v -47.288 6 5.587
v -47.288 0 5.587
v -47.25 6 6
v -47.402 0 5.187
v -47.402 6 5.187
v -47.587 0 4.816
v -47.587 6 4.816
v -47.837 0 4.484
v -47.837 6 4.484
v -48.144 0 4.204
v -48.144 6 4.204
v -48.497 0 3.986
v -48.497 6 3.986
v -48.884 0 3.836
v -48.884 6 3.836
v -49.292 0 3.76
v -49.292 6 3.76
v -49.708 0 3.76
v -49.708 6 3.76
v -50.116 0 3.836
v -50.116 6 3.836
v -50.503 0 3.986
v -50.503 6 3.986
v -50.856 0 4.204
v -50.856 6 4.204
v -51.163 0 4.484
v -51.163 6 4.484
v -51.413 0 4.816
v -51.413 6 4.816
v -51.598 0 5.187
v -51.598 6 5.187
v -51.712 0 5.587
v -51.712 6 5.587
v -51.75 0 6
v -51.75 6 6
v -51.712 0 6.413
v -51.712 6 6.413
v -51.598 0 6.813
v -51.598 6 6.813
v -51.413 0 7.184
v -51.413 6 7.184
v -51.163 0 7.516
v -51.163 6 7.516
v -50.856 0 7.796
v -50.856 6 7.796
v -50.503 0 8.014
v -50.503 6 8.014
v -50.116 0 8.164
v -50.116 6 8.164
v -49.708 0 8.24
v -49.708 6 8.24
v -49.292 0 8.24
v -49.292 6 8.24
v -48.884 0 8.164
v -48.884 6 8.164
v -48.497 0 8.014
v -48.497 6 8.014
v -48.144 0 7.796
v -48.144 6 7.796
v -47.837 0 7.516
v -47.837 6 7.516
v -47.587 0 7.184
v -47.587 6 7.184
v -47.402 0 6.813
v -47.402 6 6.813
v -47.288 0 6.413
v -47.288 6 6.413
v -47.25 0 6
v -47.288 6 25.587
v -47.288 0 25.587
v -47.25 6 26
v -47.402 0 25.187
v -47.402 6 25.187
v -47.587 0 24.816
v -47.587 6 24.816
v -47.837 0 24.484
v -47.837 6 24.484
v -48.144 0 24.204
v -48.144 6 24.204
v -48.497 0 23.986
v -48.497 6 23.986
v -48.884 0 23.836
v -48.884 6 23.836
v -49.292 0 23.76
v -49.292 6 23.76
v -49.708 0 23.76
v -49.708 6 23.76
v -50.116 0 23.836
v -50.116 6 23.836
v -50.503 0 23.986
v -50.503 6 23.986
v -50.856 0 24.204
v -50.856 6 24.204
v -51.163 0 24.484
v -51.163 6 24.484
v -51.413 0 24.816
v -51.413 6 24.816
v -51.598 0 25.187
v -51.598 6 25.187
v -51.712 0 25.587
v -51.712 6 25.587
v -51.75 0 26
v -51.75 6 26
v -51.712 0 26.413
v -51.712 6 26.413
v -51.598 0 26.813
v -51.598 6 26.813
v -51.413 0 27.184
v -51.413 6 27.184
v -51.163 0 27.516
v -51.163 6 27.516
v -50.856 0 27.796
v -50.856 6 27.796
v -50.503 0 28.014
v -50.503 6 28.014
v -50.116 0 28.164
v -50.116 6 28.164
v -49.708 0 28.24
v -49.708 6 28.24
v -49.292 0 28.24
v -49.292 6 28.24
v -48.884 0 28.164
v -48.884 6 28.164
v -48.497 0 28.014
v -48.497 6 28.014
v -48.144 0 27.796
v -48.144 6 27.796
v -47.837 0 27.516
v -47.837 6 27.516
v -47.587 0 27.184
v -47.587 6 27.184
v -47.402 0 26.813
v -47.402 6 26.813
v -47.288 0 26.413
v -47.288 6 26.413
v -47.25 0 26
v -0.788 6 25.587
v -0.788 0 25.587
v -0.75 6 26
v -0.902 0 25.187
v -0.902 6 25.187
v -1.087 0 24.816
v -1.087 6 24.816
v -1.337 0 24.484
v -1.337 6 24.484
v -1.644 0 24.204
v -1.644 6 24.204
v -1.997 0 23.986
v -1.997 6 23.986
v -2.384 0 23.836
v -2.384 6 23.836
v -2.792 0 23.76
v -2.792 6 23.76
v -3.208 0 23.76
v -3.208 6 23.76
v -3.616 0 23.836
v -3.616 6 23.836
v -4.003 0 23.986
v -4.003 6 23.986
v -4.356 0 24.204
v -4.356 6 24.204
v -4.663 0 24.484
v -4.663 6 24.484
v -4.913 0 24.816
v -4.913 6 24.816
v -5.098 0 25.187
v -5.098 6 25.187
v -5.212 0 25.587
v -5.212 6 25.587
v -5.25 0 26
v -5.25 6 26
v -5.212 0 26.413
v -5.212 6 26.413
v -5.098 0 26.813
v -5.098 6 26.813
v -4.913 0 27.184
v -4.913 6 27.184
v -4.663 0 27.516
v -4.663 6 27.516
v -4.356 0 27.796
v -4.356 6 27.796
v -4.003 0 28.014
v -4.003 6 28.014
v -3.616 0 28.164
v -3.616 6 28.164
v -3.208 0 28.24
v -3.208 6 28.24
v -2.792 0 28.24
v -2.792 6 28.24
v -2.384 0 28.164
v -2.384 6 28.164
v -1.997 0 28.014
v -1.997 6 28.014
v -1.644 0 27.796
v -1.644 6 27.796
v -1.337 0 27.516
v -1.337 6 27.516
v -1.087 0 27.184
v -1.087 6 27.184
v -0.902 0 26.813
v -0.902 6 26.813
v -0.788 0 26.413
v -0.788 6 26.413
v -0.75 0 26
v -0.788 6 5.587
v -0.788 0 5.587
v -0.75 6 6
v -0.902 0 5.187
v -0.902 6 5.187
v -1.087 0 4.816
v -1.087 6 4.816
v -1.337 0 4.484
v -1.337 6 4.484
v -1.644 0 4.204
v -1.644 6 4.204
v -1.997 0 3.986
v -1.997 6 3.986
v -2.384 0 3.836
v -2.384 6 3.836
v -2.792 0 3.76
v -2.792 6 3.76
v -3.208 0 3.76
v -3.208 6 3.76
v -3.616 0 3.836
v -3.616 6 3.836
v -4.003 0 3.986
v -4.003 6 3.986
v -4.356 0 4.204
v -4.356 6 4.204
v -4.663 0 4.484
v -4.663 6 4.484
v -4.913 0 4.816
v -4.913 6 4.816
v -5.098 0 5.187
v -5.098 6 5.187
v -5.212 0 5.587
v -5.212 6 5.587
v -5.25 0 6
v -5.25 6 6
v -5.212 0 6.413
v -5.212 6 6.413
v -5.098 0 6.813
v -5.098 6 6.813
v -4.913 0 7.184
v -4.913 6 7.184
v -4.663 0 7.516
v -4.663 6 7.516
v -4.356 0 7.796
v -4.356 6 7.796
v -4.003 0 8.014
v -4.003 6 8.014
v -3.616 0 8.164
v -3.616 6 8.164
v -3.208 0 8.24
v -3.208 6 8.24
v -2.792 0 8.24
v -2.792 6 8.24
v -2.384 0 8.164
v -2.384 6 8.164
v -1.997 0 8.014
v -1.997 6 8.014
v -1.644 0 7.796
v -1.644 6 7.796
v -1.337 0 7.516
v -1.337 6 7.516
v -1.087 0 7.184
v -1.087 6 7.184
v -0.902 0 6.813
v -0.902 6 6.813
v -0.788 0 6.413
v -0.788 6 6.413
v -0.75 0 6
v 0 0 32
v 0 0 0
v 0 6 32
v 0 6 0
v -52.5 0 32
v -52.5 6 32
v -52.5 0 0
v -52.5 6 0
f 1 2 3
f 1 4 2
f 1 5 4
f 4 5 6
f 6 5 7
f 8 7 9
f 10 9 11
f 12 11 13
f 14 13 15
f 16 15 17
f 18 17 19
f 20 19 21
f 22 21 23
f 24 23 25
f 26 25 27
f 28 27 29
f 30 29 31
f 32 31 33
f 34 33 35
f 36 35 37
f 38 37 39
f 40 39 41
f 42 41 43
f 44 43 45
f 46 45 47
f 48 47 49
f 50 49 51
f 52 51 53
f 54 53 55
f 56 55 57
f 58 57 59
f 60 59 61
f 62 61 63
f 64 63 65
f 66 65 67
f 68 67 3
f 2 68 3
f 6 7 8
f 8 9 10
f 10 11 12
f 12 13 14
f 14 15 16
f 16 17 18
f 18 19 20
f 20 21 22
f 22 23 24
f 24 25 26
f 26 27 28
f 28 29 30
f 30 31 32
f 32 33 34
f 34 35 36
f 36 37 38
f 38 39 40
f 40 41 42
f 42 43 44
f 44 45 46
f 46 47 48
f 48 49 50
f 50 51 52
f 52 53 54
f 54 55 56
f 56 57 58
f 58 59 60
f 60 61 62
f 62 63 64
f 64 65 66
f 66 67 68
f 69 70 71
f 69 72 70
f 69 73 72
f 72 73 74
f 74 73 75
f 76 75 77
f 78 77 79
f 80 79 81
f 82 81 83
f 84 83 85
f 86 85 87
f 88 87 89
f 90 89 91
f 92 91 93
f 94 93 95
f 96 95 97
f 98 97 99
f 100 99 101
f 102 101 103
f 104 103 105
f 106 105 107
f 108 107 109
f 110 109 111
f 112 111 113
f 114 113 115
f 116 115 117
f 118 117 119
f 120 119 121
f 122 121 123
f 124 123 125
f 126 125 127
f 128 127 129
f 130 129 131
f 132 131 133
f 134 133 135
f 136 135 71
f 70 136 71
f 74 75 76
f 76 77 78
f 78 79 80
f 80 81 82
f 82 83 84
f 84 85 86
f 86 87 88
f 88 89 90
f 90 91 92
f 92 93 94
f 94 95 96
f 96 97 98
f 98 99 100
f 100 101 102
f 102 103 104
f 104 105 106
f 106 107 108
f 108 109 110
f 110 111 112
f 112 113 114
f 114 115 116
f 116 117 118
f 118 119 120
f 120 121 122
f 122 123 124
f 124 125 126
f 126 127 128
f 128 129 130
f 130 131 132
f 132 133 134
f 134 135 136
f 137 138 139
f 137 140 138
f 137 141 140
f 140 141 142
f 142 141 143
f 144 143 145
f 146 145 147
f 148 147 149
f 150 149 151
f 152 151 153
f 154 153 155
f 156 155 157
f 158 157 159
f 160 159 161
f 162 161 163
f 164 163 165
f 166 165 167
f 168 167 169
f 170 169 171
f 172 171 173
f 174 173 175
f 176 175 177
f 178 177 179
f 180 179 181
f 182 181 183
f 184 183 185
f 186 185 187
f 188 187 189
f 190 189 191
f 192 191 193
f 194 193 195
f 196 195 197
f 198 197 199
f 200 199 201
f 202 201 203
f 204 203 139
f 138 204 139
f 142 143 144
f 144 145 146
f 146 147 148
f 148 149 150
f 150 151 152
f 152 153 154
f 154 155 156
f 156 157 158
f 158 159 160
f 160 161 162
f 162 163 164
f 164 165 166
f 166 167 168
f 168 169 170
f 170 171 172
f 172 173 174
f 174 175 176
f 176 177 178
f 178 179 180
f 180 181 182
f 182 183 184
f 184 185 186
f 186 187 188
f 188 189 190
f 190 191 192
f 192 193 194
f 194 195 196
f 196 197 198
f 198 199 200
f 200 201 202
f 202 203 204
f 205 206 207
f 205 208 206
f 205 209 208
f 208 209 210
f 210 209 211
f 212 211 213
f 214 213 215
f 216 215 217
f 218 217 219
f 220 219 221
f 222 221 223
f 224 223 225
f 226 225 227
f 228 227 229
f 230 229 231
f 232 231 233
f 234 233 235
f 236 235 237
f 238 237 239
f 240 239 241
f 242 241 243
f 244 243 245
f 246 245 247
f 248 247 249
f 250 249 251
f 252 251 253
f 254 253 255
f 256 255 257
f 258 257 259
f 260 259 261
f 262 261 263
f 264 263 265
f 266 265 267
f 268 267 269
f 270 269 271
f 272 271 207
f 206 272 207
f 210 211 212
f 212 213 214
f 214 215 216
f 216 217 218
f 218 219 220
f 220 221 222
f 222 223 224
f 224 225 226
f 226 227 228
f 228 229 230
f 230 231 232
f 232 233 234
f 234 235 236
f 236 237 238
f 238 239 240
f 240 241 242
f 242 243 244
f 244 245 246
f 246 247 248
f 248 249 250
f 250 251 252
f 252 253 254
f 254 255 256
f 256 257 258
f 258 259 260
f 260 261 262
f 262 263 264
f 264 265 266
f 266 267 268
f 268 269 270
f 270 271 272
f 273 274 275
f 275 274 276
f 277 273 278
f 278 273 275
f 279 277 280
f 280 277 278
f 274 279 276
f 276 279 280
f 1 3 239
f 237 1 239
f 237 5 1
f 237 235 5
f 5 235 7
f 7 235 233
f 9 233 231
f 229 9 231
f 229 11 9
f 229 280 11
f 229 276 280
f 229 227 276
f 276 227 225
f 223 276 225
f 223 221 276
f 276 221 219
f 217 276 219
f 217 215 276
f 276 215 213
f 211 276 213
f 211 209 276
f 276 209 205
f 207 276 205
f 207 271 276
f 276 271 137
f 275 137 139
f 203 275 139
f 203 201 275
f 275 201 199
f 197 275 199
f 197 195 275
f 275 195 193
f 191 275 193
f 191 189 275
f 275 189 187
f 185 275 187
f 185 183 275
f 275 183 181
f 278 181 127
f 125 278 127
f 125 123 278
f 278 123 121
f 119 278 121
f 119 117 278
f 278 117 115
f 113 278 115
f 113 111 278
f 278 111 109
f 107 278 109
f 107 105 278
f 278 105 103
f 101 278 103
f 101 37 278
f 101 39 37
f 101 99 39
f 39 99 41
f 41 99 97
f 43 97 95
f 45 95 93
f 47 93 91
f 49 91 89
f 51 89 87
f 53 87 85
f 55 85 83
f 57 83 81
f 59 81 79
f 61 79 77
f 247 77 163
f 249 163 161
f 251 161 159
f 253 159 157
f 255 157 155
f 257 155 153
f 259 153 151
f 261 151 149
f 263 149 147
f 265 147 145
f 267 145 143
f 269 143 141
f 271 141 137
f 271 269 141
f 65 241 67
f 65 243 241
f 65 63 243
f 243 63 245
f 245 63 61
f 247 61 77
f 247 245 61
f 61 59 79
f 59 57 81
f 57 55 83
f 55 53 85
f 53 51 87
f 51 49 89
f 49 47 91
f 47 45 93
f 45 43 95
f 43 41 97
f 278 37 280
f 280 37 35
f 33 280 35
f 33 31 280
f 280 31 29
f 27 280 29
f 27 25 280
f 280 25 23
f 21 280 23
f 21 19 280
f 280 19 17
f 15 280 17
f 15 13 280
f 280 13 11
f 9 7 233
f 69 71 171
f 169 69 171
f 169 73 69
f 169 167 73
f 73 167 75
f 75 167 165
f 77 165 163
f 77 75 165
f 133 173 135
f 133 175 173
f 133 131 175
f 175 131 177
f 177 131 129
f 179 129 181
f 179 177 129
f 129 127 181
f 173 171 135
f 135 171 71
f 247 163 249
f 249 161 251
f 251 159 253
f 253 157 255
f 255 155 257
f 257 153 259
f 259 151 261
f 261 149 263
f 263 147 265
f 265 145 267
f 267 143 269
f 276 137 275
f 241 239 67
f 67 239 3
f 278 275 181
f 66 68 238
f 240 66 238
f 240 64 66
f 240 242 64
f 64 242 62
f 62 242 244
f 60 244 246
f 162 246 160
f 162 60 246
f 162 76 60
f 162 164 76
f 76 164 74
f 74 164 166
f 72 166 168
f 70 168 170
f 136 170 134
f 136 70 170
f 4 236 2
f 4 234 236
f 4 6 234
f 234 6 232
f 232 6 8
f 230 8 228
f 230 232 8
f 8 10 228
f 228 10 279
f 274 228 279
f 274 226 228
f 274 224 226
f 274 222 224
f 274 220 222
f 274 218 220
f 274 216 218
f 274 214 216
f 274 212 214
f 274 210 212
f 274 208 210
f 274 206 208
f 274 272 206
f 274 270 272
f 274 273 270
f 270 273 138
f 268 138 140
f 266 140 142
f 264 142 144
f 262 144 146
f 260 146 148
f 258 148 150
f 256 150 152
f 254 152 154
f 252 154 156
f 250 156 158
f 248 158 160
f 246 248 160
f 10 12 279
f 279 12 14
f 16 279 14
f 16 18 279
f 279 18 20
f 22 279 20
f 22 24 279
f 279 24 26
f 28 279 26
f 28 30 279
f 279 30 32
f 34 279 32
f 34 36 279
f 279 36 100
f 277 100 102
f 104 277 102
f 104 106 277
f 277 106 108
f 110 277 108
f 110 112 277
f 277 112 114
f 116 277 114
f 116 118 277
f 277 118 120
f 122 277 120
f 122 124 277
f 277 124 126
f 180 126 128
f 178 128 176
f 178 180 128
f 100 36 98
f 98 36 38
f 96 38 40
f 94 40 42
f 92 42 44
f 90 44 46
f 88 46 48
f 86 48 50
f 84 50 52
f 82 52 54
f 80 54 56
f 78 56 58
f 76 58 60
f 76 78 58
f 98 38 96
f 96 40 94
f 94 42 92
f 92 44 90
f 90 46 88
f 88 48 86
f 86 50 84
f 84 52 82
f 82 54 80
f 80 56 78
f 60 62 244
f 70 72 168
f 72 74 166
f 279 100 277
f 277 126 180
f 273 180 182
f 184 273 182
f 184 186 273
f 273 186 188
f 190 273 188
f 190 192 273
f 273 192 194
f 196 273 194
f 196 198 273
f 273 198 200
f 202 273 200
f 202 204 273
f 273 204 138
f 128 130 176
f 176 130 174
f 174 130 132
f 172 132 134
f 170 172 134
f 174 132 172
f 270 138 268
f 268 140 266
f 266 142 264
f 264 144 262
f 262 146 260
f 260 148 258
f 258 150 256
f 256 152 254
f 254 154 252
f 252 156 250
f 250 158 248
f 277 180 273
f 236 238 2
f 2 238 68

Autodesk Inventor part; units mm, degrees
ref_plane "YZ Plane" through (0, 0, 0) normal (1, 0, 0) x (0, 1, 0)
ref_plane "XZ Plane" through (0, 0, 0) normal (0, 1, 0) x (-1, 0, 0)
ref_plane "XY Plane" through (0, 0, 0) normal (0, 0, 1) x (1, 0, 0)
sketch "Sketch11" plane through (0, 0, 0) normal (0, 1, 0) x (-1, 0, 0)
  line L0 (0, 0) -> (52.5, 0)
  line L1 (52.5, 0) -> (52.5, 32)
  line L2 (52.5, 32) -> (0, 32)
  line L3 (0, 32) -> (0, 0)
  line L4 (52.5, 32) -> (49.5, 32)
  dimension "d63" = 52.5
  dimension "d64" = 32
  dimension "d67" = 3
extrude "Extrusion10" add sketch "Sketch11" along normal blind 6
sketch "Sketch12" plane through (0, 0, 0) normal (0, -1, 0) x (1, 0, 0)
  line L0 (-52.5, 32) -> (-49.5, 32)
  line L1 (-52.5, 32) -> (0, 32) projected
  line L2 (-49.5, 32) -> (-49.5, 26)
  circle A0 centre (-49.5, 26) radius 2.25
  circle A1 centre (-3, 26) radius 2.25
  circle A2 centre (-49.5, 6) radius 2.25
  circle A3 centre (-3, 6) radius 2.25
  point P0 (0, 0)
  dimension "d68" = 3
  dimension "d69" = 6
  dimension "d70" = 4.5
  dimension "d73" = 46.5
  dimension "d76" = 20
extrude "Extrusion11" cut sketch "Sketch12" against normal blind 10
properties part number "suporte-barra" material "Steel, Carbon"
